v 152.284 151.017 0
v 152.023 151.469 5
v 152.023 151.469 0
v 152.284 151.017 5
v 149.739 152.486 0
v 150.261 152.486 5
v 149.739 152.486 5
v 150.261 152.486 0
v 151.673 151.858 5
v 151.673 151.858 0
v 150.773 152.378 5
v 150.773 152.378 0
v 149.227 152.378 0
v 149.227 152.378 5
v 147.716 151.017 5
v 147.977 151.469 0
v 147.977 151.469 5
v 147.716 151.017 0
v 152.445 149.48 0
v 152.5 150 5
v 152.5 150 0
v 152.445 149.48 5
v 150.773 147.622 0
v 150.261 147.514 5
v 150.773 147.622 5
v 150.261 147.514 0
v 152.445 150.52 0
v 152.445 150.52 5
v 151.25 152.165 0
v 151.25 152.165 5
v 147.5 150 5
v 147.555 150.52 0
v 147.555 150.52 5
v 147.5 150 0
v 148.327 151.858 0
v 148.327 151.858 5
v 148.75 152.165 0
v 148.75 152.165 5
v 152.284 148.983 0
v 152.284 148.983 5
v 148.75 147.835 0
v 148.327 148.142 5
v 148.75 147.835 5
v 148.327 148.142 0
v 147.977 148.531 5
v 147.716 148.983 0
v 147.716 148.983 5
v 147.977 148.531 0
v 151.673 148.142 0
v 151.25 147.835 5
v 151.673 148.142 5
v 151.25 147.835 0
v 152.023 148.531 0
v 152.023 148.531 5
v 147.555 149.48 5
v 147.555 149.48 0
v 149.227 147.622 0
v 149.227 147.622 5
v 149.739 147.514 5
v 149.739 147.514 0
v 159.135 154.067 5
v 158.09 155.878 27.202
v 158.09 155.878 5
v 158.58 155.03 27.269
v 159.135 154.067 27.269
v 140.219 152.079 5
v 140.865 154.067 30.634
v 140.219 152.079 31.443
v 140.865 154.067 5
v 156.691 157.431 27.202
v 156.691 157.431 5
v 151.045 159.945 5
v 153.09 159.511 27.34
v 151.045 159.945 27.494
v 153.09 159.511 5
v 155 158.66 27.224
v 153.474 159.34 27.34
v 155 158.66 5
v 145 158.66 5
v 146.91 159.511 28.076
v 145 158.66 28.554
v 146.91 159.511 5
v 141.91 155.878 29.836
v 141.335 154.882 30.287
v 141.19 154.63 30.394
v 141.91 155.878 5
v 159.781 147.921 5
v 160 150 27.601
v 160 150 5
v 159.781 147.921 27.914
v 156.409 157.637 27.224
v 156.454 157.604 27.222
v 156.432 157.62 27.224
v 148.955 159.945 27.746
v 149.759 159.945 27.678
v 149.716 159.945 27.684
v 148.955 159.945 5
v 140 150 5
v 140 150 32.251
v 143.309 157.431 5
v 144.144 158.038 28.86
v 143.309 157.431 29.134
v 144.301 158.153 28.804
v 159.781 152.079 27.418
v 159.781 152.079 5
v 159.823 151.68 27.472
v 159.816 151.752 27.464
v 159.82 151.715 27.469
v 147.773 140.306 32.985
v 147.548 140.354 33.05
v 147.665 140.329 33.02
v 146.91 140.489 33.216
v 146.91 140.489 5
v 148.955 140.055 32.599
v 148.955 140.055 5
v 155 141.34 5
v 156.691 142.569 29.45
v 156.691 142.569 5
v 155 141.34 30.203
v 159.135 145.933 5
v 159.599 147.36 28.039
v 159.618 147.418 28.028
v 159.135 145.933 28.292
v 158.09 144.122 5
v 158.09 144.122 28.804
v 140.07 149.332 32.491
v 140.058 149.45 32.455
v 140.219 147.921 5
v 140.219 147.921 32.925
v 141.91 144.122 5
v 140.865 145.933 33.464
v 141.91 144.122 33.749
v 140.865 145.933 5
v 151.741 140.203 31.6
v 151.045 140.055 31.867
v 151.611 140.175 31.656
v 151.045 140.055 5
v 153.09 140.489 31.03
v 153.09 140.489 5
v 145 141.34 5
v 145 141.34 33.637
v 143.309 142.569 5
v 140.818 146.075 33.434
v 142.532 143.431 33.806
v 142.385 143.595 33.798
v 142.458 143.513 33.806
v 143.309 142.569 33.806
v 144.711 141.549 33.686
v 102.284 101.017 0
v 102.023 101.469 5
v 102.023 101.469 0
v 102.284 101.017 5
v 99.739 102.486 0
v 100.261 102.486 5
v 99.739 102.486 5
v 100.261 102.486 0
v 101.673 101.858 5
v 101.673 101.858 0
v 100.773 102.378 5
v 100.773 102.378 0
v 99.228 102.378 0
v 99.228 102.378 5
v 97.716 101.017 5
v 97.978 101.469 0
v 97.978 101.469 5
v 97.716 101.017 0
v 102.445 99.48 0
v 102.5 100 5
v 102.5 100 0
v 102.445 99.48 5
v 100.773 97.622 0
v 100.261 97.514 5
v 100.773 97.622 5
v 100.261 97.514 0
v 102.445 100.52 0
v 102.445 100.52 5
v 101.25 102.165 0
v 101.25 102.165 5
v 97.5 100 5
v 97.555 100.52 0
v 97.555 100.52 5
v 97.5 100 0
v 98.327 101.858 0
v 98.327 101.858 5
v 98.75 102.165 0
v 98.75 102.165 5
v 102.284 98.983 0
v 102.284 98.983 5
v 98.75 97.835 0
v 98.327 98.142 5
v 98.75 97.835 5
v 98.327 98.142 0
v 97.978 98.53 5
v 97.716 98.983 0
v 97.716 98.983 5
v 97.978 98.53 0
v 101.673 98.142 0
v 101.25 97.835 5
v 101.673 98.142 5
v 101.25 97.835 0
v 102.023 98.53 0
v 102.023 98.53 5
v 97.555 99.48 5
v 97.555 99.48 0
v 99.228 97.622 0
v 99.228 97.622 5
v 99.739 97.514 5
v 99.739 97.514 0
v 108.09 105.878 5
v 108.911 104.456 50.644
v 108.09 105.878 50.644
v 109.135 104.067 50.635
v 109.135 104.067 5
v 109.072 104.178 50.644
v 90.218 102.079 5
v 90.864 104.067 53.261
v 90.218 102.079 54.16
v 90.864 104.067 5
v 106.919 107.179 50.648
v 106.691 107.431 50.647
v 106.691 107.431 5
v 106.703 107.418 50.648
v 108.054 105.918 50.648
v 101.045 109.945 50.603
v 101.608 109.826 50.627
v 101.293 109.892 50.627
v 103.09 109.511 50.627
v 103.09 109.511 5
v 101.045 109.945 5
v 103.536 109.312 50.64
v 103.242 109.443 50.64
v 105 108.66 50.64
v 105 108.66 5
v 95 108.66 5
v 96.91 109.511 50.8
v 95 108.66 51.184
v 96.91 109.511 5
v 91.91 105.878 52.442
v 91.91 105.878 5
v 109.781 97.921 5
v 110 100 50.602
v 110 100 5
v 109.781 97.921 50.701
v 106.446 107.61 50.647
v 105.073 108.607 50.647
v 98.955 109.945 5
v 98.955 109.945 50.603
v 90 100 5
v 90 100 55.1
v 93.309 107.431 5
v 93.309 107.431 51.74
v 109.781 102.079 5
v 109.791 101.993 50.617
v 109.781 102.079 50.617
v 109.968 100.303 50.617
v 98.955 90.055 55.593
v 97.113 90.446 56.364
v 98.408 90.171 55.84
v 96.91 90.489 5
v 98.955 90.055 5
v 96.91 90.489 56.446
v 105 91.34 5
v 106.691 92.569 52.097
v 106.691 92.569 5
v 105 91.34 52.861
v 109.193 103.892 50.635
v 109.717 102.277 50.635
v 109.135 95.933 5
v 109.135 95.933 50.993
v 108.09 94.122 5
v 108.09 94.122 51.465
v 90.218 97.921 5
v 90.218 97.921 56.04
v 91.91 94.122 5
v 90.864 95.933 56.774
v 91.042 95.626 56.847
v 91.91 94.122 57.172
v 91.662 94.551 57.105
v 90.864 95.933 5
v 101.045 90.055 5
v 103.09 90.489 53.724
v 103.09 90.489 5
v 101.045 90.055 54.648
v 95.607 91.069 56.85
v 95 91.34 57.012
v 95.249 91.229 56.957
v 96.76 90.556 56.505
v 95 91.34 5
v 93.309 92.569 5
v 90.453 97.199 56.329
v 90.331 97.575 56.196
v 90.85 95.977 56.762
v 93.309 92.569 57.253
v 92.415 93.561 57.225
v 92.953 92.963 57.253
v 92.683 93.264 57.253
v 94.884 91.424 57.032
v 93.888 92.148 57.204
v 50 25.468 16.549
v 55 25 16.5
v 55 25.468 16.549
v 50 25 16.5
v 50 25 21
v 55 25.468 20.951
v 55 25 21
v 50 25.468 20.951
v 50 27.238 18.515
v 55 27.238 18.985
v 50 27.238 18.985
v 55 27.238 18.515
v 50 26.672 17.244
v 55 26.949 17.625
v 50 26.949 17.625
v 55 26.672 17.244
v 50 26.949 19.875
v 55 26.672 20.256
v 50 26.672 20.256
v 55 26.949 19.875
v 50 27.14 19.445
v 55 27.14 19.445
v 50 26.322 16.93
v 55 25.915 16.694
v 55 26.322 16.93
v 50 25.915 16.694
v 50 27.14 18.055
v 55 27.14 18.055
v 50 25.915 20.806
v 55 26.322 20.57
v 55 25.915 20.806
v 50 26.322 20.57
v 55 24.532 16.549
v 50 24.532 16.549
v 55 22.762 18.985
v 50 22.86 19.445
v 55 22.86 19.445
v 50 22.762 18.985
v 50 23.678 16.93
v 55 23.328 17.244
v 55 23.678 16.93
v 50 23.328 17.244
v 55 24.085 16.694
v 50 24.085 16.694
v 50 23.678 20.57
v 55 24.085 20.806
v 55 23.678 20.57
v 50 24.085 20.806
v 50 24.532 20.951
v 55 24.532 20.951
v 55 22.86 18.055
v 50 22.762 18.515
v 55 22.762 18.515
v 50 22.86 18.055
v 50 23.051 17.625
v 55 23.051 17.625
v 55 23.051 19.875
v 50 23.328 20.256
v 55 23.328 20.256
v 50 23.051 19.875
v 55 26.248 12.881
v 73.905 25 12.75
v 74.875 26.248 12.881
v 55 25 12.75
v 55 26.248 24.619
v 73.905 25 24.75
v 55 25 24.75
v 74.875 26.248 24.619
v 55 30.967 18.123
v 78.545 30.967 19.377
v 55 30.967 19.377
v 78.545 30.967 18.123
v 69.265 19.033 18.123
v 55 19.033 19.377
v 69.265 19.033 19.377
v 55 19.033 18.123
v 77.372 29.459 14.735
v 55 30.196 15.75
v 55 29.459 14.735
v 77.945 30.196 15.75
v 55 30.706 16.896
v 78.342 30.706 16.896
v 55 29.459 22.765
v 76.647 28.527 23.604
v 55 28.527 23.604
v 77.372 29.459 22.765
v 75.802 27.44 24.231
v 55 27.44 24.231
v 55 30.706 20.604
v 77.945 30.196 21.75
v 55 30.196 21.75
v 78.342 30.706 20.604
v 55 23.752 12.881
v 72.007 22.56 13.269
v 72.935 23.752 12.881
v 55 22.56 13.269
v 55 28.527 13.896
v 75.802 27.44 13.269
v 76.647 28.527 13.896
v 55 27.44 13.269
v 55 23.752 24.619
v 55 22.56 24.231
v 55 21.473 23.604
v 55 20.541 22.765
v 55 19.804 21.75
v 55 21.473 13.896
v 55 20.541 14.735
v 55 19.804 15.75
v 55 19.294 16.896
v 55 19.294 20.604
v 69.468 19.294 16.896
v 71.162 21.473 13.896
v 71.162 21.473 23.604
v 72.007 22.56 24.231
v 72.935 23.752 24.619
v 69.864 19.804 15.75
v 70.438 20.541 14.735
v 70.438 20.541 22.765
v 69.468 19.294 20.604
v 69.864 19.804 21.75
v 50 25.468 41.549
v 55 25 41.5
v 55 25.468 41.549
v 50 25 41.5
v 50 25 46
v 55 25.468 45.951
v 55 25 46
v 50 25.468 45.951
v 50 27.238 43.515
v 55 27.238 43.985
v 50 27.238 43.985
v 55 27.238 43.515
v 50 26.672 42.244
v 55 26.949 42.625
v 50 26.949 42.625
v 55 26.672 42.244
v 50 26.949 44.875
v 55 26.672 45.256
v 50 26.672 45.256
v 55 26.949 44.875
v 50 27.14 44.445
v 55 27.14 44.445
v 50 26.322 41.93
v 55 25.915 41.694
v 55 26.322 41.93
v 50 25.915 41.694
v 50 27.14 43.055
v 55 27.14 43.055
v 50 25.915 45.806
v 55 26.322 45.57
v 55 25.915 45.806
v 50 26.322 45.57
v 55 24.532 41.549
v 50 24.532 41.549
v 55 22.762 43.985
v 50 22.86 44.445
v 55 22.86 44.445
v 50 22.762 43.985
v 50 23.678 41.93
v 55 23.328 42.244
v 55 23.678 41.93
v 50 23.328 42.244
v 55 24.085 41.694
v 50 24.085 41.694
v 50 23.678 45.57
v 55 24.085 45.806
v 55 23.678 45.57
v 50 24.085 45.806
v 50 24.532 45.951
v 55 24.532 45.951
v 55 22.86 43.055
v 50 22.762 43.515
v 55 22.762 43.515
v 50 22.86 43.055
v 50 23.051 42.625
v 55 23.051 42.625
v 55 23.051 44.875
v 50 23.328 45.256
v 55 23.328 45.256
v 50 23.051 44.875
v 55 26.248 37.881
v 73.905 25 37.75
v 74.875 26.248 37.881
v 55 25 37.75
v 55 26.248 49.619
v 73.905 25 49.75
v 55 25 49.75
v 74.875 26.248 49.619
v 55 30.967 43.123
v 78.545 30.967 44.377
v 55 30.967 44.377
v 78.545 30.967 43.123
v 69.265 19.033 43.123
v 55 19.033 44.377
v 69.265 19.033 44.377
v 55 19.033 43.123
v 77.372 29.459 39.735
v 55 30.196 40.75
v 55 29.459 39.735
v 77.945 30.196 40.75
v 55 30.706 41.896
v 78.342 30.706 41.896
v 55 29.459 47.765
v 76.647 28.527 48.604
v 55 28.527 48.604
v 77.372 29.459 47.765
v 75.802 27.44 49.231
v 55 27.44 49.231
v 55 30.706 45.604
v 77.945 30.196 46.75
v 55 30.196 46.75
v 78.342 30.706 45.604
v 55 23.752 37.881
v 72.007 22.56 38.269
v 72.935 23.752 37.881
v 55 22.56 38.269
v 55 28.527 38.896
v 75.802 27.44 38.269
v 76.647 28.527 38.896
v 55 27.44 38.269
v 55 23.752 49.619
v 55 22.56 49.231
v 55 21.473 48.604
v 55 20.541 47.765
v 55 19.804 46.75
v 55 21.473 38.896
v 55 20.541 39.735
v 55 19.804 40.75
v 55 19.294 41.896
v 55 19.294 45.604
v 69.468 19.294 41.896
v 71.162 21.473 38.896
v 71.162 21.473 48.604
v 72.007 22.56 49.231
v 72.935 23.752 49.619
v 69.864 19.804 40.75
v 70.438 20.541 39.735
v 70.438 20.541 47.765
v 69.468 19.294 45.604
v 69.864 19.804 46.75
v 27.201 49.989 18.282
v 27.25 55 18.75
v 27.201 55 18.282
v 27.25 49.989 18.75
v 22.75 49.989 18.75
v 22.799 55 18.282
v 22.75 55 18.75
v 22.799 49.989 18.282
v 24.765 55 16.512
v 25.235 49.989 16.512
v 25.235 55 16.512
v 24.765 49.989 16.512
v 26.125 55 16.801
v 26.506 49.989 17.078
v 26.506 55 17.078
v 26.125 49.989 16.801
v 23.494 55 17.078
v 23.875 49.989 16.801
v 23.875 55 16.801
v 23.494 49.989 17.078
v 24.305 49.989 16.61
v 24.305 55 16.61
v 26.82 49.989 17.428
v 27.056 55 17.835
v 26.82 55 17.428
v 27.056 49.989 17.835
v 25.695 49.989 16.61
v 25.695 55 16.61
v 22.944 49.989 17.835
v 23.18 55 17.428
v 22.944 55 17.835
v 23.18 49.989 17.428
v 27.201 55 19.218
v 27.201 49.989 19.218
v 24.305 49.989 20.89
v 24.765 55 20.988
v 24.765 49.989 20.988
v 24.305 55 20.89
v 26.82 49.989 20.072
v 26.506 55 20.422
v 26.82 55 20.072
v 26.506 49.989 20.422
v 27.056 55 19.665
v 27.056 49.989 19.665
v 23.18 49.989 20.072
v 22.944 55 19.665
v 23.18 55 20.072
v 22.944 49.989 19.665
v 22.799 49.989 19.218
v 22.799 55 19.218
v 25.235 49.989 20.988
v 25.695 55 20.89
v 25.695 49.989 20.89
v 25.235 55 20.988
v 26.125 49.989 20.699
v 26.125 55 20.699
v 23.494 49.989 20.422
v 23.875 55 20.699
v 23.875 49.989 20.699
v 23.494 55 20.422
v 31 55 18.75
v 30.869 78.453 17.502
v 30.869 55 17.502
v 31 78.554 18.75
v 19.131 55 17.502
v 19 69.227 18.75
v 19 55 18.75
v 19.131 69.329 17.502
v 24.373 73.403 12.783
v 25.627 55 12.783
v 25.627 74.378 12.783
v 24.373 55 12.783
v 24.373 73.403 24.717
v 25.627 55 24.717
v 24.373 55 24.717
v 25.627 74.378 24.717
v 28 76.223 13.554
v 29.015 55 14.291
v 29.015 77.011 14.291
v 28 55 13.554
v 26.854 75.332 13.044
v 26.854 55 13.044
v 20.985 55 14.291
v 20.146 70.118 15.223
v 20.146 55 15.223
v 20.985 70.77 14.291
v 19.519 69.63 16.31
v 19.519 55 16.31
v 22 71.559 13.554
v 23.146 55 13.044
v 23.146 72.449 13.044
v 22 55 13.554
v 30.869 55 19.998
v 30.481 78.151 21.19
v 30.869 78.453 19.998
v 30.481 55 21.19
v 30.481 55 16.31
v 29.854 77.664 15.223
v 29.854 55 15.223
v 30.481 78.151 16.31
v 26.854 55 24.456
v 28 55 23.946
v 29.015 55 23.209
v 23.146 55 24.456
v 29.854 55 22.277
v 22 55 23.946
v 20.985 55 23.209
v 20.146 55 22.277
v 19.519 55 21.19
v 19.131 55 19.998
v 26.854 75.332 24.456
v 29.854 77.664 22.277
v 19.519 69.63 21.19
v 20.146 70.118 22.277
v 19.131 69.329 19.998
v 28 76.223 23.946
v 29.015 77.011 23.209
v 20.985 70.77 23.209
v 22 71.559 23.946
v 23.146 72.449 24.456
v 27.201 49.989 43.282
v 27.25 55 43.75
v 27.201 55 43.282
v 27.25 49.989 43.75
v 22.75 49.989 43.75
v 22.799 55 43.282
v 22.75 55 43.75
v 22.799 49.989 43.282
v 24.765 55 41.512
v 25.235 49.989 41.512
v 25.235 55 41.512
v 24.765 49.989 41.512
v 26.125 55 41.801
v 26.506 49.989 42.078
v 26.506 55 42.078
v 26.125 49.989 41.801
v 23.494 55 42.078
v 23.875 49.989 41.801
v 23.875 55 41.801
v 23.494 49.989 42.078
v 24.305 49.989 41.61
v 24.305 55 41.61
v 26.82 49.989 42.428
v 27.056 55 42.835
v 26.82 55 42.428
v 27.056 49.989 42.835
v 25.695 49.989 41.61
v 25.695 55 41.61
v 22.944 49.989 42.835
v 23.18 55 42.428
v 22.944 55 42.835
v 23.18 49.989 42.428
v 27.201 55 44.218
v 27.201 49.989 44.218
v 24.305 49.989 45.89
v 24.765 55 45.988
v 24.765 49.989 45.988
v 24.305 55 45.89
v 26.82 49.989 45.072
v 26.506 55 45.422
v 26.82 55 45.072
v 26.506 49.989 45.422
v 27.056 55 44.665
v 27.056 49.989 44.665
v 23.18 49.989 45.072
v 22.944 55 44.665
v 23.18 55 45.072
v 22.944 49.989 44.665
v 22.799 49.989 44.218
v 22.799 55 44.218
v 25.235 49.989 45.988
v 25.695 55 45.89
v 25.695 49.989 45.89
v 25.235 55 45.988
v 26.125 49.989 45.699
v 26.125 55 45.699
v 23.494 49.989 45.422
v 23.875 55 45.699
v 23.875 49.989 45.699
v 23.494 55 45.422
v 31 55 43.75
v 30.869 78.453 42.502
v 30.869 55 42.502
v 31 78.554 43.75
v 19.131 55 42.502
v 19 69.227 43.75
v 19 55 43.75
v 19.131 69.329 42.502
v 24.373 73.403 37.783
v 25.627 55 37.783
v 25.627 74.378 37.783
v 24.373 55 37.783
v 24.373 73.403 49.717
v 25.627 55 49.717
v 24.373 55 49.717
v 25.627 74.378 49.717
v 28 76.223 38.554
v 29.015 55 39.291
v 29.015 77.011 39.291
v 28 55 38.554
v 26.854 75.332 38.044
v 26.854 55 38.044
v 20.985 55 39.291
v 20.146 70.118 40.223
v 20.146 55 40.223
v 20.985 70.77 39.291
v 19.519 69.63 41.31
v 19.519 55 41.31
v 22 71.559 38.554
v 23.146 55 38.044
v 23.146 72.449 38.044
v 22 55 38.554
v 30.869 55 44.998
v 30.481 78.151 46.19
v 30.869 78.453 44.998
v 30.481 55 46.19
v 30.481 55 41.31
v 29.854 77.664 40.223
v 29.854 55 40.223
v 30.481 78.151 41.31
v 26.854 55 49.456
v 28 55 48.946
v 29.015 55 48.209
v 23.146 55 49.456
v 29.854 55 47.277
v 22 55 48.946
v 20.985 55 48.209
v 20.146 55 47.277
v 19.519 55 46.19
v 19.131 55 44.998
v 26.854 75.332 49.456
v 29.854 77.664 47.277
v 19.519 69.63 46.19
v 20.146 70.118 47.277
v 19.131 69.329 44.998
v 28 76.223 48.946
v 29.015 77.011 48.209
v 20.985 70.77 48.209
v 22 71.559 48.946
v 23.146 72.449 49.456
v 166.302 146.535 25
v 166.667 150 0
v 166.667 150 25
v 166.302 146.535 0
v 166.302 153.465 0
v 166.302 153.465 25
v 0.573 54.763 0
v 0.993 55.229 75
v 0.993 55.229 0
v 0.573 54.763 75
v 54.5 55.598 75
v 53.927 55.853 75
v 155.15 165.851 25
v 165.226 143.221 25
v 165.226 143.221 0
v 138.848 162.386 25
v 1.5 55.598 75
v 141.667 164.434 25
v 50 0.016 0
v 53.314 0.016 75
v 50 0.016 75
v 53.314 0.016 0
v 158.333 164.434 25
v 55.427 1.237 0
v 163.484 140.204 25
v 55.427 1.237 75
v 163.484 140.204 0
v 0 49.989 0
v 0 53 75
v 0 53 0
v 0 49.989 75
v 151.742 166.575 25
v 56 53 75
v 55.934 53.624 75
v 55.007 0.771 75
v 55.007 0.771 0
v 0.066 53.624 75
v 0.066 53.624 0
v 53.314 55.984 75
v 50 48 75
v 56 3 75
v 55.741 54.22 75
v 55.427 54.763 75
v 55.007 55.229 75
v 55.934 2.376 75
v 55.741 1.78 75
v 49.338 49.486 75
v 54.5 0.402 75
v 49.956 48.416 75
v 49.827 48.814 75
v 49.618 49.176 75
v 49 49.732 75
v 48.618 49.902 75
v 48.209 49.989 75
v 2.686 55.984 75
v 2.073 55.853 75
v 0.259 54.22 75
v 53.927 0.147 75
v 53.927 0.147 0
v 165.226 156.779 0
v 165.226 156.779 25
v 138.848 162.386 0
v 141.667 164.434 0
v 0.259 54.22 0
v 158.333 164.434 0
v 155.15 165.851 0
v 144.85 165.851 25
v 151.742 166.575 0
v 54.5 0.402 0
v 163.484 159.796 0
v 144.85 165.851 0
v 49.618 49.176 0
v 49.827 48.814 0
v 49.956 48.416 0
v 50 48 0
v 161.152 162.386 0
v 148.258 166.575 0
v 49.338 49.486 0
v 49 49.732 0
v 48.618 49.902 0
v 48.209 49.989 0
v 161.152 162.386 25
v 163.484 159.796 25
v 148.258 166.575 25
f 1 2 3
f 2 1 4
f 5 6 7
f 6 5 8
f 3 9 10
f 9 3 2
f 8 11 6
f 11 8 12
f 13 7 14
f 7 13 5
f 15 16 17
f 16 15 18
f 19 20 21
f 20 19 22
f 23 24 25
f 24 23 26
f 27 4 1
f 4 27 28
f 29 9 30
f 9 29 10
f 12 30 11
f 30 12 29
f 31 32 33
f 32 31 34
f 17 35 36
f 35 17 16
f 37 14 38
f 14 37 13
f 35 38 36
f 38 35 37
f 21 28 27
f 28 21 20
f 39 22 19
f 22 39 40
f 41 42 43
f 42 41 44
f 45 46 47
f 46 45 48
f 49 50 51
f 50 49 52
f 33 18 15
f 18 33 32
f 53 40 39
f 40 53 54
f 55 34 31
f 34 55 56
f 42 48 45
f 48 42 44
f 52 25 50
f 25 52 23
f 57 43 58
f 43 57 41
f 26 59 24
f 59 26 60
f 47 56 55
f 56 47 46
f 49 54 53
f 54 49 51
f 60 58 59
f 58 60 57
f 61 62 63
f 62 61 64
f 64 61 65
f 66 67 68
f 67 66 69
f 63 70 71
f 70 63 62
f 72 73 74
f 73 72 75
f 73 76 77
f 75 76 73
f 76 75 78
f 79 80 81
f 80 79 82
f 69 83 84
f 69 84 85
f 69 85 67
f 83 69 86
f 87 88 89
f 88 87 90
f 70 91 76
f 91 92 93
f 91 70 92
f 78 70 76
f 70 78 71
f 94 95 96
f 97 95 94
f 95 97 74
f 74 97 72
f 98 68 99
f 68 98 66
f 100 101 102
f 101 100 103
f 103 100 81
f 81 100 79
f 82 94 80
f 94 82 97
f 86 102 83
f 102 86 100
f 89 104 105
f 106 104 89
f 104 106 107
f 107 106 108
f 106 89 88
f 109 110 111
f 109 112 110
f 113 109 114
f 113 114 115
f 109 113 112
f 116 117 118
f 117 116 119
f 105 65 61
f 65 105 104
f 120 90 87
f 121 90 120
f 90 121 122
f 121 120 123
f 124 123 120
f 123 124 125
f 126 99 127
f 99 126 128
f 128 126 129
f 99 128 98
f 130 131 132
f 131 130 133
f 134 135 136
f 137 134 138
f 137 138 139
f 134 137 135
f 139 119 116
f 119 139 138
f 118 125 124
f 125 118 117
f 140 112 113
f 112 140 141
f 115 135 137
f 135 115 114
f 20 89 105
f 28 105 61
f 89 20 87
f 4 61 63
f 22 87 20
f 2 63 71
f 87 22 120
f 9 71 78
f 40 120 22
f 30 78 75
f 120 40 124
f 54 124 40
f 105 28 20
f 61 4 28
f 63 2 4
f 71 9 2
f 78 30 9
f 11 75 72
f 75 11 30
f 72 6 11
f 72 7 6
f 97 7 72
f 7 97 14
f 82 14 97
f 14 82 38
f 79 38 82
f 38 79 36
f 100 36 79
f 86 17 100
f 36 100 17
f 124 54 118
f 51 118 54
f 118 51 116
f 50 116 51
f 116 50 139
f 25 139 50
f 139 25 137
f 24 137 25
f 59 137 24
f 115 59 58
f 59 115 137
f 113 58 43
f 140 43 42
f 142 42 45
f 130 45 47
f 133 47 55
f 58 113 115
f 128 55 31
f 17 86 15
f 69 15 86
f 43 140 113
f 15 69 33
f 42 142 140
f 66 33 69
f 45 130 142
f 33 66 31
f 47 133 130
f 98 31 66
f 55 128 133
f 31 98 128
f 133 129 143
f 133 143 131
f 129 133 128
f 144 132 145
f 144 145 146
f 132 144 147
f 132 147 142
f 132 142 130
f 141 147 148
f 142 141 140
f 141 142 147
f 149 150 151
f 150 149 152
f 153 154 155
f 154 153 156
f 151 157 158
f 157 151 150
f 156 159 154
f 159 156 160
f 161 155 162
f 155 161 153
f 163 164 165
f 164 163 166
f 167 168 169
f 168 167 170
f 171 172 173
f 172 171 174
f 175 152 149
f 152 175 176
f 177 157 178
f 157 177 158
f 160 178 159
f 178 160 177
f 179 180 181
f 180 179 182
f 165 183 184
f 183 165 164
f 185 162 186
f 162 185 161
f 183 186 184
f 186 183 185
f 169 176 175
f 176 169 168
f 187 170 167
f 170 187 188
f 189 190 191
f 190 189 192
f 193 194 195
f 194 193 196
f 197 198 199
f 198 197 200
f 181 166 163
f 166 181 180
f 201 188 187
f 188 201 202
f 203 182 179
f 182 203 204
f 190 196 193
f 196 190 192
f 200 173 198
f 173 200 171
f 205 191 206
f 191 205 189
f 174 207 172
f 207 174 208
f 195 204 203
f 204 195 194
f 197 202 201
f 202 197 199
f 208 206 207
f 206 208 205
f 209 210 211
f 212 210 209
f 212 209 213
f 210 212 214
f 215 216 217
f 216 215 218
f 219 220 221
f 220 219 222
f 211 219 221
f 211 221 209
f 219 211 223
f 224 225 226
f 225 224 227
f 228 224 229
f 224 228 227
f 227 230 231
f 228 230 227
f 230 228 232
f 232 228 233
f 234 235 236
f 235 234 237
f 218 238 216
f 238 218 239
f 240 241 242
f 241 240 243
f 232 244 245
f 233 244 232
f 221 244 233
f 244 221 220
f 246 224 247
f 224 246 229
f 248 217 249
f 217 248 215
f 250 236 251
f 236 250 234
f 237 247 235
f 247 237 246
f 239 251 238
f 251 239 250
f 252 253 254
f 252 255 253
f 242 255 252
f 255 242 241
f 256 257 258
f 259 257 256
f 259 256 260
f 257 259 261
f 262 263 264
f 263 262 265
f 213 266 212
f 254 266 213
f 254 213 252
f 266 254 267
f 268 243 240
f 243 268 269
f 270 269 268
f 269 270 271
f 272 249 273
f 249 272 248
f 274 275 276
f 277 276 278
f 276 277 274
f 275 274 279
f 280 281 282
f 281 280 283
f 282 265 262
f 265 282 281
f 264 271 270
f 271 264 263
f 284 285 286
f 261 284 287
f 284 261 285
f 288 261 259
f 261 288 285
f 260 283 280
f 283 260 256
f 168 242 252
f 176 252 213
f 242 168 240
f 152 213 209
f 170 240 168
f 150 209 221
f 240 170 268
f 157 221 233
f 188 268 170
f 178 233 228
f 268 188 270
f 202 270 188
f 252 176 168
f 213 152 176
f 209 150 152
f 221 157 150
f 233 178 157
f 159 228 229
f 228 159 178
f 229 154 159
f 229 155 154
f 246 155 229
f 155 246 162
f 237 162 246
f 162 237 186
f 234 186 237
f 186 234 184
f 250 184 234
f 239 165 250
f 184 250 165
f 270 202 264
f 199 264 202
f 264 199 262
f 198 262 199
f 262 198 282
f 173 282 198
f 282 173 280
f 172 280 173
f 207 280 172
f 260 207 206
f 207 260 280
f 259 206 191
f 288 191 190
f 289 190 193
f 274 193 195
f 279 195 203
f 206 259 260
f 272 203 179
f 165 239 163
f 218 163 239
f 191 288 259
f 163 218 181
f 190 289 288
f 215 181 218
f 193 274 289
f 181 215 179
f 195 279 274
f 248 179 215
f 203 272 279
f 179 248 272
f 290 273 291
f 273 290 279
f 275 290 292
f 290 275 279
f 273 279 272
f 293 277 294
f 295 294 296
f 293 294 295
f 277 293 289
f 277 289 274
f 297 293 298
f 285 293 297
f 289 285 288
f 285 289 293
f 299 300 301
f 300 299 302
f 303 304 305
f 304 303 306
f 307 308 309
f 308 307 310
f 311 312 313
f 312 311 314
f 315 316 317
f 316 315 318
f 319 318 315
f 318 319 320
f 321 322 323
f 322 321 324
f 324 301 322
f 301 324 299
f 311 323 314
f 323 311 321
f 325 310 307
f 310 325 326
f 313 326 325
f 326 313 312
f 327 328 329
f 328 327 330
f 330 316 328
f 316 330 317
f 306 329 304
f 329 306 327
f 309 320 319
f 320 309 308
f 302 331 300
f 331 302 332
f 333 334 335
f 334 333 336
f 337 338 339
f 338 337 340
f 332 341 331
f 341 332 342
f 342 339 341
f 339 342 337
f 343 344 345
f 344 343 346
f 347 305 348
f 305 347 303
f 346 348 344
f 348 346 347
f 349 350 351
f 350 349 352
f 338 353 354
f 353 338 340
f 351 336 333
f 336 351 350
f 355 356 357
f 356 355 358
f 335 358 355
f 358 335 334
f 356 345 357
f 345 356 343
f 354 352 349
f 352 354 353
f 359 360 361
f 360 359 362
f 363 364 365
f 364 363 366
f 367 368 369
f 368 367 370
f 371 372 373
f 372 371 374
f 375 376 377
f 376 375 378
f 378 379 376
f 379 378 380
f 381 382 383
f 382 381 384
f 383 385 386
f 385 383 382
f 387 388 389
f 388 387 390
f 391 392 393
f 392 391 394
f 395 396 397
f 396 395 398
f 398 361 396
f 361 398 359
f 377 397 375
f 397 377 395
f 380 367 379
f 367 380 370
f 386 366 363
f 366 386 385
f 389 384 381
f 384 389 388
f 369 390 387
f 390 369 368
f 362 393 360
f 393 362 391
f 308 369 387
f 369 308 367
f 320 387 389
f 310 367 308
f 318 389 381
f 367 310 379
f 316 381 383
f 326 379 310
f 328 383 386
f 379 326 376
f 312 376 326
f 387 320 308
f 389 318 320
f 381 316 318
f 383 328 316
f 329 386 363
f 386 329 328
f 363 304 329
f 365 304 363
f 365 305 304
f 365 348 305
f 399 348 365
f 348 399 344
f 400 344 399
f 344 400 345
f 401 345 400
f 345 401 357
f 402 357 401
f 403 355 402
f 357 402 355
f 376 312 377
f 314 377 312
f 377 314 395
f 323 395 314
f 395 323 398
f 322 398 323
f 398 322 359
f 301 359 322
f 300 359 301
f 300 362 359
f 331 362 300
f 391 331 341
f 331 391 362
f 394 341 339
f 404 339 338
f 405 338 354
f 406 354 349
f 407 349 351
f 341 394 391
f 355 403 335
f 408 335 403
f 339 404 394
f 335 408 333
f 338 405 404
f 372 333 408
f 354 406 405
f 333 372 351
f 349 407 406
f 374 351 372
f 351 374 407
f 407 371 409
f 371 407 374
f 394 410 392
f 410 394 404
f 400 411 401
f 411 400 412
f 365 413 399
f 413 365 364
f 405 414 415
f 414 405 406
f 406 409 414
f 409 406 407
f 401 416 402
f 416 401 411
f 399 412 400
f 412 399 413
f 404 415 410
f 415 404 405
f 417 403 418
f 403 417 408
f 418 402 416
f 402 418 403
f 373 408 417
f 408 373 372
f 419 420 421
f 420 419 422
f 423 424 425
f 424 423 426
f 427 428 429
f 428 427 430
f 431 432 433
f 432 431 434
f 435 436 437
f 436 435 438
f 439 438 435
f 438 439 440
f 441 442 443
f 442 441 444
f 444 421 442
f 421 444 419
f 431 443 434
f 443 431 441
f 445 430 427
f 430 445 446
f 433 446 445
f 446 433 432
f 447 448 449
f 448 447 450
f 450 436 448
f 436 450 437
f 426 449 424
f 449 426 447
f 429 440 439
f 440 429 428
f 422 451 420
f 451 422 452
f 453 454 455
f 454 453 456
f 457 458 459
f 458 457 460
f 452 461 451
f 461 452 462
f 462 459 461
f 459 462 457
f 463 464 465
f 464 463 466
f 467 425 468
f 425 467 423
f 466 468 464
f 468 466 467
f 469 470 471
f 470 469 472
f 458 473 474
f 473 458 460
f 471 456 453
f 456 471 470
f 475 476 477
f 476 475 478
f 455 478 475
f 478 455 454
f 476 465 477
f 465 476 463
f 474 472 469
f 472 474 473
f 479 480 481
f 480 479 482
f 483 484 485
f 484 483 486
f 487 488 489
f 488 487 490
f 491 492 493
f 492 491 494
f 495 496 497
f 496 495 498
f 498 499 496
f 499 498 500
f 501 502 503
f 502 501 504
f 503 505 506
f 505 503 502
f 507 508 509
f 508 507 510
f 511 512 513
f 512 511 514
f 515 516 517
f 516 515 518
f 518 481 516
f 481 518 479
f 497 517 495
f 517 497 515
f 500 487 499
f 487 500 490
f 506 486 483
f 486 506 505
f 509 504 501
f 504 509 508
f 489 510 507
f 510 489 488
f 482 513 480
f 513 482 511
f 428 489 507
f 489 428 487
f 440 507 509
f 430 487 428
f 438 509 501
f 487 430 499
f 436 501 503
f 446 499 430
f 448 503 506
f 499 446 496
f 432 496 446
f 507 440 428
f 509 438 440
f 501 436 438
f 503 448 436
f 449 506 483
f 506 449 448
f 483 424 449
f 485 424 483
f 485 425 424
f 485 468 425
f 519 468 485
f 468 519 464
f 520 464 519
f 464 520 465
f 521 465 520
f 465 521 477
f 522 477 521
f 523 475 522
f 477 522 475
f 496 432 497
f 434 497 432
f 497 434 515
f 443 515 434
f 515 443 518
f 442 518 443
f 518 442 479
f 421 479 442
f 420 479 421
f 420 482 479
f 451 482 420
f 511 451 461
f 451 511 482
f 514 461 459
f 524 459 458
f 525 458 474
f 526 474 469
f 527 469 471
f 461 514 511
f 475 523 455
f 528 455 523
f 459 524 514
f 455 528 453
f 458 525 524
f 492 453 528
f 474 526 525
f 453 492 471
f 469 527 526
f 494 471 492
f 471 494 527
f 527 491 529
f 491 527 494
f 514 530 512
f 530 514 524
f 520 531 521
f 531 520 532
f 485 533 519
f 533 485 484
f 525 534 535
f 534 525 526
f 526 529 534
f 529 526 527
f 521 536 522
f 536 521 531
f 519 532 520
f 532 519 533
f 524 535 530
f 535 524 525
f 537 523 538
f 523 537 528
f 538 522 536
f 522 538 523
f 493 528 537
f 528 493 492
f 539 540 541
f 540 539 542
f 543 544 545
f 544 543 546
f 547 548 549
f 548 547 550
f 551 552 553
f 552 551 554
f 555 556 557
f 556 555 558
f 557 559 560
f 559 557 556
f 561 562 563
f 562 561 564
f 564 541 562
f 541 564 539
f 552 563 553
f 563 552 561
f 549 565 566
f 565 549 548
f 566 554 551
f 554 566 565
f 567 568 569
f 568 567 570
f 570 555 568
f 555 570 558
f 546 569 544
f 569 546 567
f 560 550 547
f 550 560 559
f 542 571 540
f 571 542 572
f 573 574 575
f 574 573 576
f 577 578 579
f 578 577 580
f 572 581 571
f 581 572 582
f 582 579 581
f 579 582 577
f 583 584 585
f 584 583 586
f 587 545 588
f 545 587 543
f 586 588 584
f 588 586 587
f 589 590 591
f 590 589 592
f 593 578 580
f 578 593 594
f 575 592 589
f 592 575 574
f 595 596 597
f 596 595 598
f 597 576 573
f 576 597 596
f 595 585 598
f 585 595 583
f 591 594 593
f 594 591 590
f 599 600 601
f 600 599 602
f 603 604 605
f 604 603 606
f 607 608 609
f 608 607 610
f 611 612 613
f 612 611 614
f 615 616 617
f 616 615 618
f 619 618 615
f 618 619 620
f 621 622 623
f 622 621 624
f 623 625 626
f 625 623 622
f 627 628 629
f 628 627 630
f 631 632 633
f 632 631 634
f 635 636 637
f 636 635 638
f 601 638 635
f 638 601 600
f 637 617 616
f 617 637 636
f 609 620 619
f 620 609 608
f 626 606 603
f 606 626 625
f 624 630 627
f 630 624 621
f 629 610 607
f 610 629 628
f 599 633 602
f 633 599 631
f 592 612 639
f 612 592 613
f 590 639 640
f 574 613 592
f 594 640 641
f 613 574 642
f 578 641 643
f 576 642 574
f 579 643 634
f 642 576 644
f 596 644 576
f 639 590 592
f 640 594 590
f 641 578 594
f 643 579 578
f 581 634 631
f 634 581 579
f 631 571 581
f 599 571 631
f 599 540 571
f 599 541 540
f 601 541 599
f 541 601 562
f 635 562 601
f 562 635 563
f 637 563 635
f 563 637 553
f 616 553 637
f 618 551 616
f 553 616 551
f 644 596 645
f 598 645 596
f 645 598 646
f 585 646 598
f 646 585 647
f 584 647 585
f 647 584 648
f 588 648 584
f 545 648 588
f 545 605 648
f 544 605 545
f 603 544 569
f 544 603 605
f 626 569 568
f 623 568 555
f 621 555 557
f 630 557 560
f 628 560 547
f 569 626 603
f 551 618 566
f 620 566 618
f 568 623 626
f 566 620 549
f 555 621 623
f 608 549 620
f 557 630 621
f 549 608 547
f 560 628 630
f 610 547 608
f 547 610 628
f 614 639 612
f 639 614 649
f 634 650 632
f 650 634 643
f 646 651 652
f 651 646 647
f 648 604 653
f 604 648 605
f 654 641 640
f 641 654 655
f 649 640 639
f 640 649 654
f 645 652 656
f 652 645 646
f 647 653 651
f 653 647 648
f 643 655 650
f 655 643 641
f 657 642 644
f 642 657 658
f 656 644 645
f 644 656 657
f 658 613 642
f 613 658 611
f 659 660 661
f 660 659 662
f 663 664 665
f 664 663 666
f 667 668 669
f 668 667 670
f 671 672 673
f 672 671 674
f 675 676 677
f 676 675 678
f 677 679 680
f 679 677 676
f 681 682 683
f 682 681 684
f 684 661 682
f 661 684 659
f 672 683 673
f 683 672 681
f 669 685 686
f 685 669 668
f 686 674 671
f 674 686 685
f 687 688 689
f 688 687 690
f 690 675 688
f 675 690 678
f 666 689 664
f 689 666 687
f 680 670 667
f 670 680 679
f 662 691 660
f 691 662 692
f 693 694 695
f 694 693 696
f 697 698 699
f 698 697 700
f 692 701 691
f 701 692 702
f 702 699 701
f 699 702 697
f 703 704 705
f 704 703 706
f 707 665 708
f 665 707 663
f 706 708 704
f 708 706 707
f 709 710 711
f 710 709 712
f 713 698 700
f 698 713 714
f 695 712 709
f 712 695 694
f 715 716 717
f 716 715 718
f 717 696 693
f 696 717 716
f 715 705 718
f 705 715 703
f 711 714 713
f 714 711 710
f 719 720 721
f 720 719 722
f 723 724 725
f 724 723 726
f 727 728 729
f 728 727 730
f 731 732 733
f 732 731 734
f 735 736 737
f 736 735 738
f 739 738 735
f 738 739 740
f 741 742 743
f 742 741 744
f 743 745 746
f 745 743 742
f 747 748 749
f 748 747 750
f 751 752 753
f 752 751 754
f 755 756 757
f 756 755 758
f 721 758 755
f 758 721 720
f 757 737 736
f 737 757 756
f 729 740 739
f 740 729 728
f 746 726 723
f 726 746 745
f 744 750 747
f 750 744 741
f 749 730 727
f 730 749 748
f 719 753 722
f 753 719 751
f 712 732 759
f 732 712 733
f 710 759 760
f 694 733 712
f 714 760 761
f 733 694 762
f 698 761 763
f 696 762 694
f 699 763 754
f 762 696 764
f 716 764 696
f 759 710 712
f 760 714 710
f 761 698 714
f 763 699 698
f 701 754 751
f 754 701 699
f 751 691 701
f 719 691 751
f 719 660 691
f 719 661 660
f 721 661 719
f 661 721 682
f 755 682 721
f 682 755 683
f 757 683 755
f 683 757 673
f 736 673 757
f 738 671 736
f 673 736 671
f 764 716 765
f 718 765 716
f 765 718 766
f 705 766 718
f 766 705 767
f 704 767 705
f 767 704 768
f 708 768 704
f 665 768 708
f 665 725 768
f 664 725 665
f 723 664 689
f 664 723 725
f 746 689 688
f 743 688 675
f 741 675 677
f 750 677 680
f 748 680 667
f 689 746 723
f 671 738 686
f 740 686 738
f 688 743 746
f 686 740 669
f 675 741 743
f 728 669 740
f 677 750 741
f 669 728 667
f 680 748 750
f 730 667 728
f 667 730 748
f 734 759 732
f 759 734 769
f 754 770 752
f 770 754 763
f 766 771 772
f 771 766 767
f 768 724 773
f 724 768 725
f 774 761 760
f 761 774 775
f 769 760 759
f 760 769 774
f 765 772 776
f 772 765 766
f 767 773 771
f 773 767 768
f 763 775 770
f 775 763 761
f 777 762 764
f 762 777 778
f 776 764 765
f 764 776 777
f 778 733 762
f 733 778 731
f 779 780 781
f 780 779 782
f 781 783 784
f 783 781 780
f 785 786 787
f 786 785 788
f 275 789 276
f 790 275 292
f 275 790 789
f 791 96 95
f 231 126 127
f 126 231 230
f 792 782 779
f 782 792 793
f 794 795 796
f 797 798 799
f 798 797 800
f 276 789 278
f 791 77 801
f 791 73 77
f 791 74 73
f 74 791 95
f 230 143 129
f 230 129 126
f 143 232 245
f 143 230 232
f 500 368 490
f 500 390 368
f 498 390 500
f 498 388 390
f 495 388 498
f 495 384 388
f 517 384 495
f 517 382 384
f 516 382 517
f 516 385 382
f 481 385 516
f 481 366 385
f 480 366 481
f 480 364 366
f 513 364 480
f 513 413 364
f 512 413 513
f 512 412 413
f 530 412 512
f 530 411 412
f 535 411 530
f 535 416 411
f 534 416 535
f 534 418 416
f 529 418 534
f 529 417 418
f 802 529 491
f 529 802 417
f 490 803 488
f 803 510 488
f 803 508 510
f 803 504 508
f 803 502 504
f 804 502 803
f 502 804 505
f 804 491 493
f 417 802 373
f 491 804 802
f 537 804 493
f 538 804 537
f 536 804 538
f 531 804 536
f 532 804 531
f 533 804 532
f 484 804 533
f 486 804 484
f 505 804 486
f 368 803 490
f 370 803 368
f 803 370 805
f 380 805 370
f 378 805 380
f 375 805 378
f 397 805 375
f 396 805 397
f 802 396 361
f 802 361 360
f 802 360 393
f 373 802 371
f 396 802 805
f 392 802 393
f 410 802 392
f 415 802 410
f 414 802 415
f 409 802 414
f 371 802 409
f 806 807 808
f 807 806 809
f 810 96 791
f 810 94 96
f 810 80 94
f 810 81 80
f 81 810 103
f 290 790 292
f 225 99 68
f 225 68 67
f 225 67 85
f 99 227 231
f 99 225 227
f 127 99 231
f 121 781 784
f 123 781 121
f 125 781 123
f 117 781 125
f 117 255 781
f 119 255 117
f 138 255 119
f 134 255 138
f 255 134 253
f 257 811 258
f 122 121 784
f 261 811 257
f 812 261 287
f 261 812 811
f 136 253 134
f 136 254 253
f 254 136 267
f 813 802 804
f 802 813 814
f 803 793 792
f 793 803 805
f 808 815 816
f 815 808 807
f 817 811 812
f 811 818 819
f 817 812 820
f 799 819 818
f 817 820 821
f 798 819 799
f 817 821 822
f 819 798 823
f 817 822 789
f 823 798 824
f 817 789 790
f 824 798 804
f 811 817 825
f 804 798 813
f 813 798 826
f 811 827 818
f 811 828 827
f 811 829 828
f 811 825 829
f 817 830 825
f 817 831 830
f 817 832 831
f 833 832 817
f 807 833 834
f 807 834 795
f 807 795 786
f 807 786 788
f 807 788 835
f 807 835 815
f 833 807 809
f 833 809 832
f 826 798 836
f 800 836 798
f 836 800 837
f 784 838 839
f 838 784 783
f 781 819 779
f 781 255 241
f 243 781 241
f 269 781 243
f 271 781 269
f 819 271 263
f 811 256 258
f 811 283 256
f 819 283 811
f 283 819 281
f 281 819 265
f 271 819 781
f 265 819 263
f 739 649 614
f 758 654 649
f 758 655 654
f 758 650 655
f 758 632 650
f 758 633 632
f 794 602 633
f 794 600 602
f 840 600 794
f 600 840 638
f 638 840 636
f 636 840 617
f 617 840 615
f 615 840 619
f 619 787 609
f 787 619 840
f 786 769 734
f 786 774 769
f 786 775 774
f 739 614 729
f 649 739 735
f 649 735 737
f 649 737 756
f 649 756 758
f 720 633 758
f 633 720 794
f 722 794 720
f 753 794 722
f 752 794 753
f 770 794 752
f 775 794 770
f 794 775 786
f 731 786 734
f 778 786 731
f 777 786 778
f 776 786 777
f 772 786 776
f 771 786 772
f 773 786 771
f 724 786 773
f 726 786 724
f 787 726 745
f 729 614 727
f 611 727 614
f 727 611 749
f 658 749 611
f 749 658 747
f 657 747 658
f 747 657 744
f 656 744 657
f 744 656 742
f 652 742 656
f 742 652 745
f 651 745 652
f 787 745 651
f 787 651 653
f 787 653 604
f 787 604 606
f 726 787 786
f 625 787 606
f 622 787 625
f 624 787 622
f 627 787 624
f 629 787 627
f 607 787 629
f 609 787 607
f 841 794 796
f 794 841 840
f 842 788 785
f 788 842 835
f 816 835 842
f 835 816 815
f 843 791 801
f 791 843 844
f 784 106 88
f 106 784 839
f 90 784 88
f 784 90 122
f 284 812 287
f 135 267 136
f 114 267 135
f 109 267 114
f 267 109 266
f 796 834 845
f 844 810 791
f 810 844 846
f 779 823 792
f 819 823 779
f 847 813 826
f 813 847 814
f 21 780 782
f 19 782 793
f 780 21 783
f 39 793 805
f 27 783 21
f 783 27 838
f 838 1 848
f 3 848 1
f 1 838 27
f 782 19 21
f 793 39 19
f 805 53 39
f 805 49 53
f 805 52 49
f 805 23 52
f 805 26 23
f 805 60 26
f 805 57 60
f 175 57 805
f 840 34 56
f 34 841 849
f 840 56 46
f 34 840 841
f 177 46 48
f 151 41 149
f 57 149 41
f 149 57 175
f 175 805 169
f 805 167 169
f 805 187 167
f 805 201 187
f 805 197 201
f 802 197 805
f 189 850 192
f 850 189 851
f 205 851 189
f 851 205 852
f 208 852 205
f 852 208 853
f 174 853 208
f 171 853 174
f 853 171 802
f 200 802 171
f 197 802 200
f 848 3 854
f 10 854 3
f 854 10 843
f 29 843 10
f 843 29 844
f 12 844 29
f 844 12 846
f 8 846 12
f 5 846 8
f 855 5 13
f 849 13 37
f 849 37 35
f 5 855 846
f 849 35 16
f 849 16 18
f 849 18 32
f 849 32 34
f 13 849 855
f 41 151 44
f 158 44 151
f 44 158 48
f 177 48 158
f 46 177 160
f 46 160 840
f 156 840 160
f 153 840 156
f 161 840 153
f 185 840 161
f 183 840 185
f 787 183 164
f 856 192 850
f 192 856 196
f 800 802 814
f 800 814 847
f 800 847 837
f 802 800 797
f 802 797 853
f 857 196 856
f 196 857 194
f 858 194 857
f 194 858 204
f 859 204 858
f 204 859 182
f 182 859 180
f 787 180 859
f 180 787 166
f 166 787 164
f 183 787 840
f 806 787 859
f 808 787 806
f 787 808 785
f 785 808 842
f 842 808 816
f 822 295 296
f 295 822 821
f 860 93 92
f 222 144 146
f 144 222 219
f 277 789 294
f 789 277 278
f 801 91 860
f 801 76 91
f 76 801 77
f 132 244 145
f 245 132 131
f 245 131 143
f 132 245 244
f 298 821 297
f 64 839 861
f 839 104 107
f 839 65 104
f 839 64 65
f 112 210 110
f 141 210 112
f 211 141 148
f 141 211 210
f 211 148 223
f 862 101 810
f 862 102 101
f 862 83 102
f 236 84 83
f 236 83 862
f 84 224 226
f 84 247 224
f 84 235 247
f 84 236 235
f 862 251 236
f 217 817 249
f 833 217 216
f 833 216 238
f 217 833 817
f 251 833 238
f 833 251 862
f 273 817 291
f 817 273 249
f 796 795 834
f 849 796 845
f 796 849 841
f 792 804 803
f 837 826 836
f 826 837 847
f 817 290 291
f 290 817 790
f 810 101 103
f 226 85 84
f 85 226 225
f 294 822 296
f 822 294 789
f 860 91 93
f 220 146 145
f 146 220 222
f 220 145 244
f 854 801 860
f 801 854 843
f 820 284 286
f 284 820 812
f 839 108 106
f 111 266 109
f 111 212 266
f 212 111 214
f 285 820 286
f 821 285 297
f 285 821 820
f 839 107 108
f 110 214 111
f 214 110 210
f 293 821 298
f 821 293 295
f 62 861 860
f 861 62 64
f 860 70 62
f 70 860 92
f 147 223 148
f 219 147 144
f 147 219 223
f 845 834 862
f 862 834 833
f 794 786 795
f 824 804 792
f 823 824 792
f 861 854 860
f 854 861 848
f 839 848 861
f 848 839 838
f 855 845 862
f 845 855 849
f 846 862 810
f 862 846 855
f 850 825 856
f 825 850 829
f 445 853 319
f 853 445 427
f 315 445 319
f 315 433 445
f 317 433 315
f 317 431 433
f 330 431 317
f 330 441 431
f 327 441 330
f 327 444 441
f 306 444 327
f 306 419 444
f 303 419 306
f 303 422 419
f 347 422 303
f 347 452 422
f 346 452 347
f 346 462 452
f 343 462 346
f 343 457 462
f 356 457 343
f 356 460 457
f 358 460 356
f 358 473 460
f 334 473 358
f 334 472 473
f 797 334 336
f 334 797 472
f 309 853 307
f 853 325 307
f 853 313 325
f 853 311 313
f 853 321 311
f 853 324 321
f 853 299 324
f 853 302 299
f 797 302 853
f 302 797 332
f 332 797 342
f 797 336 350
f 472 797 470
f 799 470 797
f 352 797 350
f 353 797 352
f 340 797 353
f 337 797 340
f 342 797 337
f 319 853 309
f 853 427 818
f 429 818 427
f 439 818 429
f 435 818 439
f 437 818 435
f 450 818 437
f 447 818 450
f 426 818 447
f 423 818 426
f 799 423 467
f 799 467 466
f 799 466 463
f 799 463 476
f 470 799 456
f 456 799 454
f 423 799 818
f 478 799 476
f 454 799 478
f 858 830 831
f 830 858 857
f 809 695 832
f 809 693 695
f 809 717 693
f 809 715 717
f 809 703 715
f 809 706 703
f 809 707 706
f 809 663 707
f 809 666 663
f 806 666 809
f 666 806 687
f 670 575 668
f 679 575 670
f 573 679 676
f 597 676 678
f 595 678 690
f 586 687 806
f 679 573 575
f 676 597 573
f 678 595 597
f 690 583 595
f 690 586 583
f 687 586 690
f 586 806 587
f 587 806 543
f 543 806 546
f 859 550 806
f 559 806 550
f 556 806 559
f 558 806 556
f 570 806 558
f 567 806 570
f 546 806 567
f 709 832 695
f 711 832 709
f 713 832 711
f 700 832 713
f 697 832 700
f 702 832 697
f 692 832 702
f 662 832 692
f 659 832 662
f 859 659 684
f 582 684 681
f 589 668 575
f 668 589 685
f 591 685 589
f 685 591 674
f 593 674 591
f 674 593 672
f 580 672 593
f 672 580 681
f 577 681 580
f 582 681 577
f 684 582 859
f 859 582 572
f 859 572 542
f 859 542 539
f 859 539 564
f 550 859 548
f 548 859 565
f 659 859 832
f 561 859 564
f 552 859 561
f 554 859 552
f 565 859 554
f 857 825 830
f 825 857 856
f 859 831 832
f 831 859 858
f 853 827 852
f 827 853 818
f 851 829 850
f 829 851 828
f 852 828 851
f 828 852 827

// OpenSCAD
// Lack Leg Brace
$fn=30;

leg_width = 50;
depth = 75;
length = 150;
wall_thickness = 6;

outer();

module outer() {
    difference() {
        hull() {
            roundedcube(size=[leg_width + wall_thickness, leg_width+wall_thickness,depth],radius=3,apply_to="z");
            translate([length,length,0]) {
                cylinder(d = leg_width/1.5, h = depth/3);
            }
        }
        translate([-4,-4,-4]) {
            roundedcube([leg_width+4,leg_width+4,depth+8],radius=2,apply_to="z");
        }
        translate([length,length,-1]) {
            base_screw();
        }
        translate([length/1.5,length/1.5,-1]) {
            base_screw();
        }
        translate([leg_width - 1,leg_width/2,depth/4]) {
            rotate([0,90,0]) {
                leg_screw();
            }
            translate([0,0,depth/3]) {
                rotate([0,90,0]) {
                    leg_screw();
                }
            }
        }
        translate([leg_width/2,leg_width - 1,depth/4]) {
            rotate([-90,0,0]) {
                leg_screw();
            }
            translate([0,0,depth/3]) {
                rotate([-90,0,0]) {
                    leg_screw();
                }
            }
        }
    }
}

module base_screw() {
    cylinder(d=5,h=40);
    translate([0,0,6]) {
        cylinder(d=20,h=depth);
    }
}

module leg_screw() {
    cylinder(d=4.5,h=60);
    translate([0,0,6]) {
        cylinder(d=12,h=60);
    }
}


// The roundedcube function, shamelessy lifted from:
// https://danielupshaw.com/openscad-rounded-corners/
module roundedcube(size = [1, 1, 1], center = false, radius = 0.5, apply_to = "all") {
	// If single value, convert to [x, y, z] vector
	size = (size[0] == undef) ? [size, size, size] : size;

	translate_min = radius;
	translate_xmax = size[0] - radius;
	translate_ymax = size[1] - radius;
	translate_zmax = size[2] - radius;

	diameter = radius * 2;

	module build_point(type = "sphere", rotate = [0, 0, 0]) {
		if (type == "sphere") {
			sphere(r = radius);
		} else if (type == "cylinder") {
			rotate(a = rotate)
			cylinder(h = diameter, r = radius, center = true);
		}
	}

	obj_translate = (center == false) ?
		[0, 0, 0] : [
			-(size[0] / 2),
			-(size[1] / 2),
			-(size[2] / 2)
		];

	translate(v = obj_translate) {
		hull() {
			for (translate_x = [translate_min, translate_xmax]) {
				x_at = (translate_x == translate_min) ? "min" : "max";
				for (translate_y = [translate_min, translate_ymax]) {
					y_at = (translate_y == translate_min) ? "min" : "max";
					for (translate_z = [translate_min, translate_zmax]) {
						z_at = (translate_z == translate_min) ? "min" : "max";

						translate(v = [translate_x, translate_y, translate_z])
						if (
							(apply_to == "all") ||
							(apply_to == "xmin" && x_at == "min") || (apply_to == "xmax" && x_at == "max") ||
							(apply_to == "ymin" && y_at == "min") || (apply_to == "ymax" && y_at == "max") ||
							(apply_to == "zmin" && z_at == "min") || (apply_to == "zmax" && z_at == "max")
						) {
							build_point("sphere");
						} else {
							rotate = 
								(apply_to == "xmin" || apply_to == "xmax" || apply_to == "x") ? [0, 90, 0] : (
								(apply_to == "ymin" || apply_to == "ymax" || apply_to == "y") ? [90, 90, 0] :
								[0, 0, 0]
							);
							build_point("cylinder", rotate);
						}
					}
				}
			}
		}
	}
}
